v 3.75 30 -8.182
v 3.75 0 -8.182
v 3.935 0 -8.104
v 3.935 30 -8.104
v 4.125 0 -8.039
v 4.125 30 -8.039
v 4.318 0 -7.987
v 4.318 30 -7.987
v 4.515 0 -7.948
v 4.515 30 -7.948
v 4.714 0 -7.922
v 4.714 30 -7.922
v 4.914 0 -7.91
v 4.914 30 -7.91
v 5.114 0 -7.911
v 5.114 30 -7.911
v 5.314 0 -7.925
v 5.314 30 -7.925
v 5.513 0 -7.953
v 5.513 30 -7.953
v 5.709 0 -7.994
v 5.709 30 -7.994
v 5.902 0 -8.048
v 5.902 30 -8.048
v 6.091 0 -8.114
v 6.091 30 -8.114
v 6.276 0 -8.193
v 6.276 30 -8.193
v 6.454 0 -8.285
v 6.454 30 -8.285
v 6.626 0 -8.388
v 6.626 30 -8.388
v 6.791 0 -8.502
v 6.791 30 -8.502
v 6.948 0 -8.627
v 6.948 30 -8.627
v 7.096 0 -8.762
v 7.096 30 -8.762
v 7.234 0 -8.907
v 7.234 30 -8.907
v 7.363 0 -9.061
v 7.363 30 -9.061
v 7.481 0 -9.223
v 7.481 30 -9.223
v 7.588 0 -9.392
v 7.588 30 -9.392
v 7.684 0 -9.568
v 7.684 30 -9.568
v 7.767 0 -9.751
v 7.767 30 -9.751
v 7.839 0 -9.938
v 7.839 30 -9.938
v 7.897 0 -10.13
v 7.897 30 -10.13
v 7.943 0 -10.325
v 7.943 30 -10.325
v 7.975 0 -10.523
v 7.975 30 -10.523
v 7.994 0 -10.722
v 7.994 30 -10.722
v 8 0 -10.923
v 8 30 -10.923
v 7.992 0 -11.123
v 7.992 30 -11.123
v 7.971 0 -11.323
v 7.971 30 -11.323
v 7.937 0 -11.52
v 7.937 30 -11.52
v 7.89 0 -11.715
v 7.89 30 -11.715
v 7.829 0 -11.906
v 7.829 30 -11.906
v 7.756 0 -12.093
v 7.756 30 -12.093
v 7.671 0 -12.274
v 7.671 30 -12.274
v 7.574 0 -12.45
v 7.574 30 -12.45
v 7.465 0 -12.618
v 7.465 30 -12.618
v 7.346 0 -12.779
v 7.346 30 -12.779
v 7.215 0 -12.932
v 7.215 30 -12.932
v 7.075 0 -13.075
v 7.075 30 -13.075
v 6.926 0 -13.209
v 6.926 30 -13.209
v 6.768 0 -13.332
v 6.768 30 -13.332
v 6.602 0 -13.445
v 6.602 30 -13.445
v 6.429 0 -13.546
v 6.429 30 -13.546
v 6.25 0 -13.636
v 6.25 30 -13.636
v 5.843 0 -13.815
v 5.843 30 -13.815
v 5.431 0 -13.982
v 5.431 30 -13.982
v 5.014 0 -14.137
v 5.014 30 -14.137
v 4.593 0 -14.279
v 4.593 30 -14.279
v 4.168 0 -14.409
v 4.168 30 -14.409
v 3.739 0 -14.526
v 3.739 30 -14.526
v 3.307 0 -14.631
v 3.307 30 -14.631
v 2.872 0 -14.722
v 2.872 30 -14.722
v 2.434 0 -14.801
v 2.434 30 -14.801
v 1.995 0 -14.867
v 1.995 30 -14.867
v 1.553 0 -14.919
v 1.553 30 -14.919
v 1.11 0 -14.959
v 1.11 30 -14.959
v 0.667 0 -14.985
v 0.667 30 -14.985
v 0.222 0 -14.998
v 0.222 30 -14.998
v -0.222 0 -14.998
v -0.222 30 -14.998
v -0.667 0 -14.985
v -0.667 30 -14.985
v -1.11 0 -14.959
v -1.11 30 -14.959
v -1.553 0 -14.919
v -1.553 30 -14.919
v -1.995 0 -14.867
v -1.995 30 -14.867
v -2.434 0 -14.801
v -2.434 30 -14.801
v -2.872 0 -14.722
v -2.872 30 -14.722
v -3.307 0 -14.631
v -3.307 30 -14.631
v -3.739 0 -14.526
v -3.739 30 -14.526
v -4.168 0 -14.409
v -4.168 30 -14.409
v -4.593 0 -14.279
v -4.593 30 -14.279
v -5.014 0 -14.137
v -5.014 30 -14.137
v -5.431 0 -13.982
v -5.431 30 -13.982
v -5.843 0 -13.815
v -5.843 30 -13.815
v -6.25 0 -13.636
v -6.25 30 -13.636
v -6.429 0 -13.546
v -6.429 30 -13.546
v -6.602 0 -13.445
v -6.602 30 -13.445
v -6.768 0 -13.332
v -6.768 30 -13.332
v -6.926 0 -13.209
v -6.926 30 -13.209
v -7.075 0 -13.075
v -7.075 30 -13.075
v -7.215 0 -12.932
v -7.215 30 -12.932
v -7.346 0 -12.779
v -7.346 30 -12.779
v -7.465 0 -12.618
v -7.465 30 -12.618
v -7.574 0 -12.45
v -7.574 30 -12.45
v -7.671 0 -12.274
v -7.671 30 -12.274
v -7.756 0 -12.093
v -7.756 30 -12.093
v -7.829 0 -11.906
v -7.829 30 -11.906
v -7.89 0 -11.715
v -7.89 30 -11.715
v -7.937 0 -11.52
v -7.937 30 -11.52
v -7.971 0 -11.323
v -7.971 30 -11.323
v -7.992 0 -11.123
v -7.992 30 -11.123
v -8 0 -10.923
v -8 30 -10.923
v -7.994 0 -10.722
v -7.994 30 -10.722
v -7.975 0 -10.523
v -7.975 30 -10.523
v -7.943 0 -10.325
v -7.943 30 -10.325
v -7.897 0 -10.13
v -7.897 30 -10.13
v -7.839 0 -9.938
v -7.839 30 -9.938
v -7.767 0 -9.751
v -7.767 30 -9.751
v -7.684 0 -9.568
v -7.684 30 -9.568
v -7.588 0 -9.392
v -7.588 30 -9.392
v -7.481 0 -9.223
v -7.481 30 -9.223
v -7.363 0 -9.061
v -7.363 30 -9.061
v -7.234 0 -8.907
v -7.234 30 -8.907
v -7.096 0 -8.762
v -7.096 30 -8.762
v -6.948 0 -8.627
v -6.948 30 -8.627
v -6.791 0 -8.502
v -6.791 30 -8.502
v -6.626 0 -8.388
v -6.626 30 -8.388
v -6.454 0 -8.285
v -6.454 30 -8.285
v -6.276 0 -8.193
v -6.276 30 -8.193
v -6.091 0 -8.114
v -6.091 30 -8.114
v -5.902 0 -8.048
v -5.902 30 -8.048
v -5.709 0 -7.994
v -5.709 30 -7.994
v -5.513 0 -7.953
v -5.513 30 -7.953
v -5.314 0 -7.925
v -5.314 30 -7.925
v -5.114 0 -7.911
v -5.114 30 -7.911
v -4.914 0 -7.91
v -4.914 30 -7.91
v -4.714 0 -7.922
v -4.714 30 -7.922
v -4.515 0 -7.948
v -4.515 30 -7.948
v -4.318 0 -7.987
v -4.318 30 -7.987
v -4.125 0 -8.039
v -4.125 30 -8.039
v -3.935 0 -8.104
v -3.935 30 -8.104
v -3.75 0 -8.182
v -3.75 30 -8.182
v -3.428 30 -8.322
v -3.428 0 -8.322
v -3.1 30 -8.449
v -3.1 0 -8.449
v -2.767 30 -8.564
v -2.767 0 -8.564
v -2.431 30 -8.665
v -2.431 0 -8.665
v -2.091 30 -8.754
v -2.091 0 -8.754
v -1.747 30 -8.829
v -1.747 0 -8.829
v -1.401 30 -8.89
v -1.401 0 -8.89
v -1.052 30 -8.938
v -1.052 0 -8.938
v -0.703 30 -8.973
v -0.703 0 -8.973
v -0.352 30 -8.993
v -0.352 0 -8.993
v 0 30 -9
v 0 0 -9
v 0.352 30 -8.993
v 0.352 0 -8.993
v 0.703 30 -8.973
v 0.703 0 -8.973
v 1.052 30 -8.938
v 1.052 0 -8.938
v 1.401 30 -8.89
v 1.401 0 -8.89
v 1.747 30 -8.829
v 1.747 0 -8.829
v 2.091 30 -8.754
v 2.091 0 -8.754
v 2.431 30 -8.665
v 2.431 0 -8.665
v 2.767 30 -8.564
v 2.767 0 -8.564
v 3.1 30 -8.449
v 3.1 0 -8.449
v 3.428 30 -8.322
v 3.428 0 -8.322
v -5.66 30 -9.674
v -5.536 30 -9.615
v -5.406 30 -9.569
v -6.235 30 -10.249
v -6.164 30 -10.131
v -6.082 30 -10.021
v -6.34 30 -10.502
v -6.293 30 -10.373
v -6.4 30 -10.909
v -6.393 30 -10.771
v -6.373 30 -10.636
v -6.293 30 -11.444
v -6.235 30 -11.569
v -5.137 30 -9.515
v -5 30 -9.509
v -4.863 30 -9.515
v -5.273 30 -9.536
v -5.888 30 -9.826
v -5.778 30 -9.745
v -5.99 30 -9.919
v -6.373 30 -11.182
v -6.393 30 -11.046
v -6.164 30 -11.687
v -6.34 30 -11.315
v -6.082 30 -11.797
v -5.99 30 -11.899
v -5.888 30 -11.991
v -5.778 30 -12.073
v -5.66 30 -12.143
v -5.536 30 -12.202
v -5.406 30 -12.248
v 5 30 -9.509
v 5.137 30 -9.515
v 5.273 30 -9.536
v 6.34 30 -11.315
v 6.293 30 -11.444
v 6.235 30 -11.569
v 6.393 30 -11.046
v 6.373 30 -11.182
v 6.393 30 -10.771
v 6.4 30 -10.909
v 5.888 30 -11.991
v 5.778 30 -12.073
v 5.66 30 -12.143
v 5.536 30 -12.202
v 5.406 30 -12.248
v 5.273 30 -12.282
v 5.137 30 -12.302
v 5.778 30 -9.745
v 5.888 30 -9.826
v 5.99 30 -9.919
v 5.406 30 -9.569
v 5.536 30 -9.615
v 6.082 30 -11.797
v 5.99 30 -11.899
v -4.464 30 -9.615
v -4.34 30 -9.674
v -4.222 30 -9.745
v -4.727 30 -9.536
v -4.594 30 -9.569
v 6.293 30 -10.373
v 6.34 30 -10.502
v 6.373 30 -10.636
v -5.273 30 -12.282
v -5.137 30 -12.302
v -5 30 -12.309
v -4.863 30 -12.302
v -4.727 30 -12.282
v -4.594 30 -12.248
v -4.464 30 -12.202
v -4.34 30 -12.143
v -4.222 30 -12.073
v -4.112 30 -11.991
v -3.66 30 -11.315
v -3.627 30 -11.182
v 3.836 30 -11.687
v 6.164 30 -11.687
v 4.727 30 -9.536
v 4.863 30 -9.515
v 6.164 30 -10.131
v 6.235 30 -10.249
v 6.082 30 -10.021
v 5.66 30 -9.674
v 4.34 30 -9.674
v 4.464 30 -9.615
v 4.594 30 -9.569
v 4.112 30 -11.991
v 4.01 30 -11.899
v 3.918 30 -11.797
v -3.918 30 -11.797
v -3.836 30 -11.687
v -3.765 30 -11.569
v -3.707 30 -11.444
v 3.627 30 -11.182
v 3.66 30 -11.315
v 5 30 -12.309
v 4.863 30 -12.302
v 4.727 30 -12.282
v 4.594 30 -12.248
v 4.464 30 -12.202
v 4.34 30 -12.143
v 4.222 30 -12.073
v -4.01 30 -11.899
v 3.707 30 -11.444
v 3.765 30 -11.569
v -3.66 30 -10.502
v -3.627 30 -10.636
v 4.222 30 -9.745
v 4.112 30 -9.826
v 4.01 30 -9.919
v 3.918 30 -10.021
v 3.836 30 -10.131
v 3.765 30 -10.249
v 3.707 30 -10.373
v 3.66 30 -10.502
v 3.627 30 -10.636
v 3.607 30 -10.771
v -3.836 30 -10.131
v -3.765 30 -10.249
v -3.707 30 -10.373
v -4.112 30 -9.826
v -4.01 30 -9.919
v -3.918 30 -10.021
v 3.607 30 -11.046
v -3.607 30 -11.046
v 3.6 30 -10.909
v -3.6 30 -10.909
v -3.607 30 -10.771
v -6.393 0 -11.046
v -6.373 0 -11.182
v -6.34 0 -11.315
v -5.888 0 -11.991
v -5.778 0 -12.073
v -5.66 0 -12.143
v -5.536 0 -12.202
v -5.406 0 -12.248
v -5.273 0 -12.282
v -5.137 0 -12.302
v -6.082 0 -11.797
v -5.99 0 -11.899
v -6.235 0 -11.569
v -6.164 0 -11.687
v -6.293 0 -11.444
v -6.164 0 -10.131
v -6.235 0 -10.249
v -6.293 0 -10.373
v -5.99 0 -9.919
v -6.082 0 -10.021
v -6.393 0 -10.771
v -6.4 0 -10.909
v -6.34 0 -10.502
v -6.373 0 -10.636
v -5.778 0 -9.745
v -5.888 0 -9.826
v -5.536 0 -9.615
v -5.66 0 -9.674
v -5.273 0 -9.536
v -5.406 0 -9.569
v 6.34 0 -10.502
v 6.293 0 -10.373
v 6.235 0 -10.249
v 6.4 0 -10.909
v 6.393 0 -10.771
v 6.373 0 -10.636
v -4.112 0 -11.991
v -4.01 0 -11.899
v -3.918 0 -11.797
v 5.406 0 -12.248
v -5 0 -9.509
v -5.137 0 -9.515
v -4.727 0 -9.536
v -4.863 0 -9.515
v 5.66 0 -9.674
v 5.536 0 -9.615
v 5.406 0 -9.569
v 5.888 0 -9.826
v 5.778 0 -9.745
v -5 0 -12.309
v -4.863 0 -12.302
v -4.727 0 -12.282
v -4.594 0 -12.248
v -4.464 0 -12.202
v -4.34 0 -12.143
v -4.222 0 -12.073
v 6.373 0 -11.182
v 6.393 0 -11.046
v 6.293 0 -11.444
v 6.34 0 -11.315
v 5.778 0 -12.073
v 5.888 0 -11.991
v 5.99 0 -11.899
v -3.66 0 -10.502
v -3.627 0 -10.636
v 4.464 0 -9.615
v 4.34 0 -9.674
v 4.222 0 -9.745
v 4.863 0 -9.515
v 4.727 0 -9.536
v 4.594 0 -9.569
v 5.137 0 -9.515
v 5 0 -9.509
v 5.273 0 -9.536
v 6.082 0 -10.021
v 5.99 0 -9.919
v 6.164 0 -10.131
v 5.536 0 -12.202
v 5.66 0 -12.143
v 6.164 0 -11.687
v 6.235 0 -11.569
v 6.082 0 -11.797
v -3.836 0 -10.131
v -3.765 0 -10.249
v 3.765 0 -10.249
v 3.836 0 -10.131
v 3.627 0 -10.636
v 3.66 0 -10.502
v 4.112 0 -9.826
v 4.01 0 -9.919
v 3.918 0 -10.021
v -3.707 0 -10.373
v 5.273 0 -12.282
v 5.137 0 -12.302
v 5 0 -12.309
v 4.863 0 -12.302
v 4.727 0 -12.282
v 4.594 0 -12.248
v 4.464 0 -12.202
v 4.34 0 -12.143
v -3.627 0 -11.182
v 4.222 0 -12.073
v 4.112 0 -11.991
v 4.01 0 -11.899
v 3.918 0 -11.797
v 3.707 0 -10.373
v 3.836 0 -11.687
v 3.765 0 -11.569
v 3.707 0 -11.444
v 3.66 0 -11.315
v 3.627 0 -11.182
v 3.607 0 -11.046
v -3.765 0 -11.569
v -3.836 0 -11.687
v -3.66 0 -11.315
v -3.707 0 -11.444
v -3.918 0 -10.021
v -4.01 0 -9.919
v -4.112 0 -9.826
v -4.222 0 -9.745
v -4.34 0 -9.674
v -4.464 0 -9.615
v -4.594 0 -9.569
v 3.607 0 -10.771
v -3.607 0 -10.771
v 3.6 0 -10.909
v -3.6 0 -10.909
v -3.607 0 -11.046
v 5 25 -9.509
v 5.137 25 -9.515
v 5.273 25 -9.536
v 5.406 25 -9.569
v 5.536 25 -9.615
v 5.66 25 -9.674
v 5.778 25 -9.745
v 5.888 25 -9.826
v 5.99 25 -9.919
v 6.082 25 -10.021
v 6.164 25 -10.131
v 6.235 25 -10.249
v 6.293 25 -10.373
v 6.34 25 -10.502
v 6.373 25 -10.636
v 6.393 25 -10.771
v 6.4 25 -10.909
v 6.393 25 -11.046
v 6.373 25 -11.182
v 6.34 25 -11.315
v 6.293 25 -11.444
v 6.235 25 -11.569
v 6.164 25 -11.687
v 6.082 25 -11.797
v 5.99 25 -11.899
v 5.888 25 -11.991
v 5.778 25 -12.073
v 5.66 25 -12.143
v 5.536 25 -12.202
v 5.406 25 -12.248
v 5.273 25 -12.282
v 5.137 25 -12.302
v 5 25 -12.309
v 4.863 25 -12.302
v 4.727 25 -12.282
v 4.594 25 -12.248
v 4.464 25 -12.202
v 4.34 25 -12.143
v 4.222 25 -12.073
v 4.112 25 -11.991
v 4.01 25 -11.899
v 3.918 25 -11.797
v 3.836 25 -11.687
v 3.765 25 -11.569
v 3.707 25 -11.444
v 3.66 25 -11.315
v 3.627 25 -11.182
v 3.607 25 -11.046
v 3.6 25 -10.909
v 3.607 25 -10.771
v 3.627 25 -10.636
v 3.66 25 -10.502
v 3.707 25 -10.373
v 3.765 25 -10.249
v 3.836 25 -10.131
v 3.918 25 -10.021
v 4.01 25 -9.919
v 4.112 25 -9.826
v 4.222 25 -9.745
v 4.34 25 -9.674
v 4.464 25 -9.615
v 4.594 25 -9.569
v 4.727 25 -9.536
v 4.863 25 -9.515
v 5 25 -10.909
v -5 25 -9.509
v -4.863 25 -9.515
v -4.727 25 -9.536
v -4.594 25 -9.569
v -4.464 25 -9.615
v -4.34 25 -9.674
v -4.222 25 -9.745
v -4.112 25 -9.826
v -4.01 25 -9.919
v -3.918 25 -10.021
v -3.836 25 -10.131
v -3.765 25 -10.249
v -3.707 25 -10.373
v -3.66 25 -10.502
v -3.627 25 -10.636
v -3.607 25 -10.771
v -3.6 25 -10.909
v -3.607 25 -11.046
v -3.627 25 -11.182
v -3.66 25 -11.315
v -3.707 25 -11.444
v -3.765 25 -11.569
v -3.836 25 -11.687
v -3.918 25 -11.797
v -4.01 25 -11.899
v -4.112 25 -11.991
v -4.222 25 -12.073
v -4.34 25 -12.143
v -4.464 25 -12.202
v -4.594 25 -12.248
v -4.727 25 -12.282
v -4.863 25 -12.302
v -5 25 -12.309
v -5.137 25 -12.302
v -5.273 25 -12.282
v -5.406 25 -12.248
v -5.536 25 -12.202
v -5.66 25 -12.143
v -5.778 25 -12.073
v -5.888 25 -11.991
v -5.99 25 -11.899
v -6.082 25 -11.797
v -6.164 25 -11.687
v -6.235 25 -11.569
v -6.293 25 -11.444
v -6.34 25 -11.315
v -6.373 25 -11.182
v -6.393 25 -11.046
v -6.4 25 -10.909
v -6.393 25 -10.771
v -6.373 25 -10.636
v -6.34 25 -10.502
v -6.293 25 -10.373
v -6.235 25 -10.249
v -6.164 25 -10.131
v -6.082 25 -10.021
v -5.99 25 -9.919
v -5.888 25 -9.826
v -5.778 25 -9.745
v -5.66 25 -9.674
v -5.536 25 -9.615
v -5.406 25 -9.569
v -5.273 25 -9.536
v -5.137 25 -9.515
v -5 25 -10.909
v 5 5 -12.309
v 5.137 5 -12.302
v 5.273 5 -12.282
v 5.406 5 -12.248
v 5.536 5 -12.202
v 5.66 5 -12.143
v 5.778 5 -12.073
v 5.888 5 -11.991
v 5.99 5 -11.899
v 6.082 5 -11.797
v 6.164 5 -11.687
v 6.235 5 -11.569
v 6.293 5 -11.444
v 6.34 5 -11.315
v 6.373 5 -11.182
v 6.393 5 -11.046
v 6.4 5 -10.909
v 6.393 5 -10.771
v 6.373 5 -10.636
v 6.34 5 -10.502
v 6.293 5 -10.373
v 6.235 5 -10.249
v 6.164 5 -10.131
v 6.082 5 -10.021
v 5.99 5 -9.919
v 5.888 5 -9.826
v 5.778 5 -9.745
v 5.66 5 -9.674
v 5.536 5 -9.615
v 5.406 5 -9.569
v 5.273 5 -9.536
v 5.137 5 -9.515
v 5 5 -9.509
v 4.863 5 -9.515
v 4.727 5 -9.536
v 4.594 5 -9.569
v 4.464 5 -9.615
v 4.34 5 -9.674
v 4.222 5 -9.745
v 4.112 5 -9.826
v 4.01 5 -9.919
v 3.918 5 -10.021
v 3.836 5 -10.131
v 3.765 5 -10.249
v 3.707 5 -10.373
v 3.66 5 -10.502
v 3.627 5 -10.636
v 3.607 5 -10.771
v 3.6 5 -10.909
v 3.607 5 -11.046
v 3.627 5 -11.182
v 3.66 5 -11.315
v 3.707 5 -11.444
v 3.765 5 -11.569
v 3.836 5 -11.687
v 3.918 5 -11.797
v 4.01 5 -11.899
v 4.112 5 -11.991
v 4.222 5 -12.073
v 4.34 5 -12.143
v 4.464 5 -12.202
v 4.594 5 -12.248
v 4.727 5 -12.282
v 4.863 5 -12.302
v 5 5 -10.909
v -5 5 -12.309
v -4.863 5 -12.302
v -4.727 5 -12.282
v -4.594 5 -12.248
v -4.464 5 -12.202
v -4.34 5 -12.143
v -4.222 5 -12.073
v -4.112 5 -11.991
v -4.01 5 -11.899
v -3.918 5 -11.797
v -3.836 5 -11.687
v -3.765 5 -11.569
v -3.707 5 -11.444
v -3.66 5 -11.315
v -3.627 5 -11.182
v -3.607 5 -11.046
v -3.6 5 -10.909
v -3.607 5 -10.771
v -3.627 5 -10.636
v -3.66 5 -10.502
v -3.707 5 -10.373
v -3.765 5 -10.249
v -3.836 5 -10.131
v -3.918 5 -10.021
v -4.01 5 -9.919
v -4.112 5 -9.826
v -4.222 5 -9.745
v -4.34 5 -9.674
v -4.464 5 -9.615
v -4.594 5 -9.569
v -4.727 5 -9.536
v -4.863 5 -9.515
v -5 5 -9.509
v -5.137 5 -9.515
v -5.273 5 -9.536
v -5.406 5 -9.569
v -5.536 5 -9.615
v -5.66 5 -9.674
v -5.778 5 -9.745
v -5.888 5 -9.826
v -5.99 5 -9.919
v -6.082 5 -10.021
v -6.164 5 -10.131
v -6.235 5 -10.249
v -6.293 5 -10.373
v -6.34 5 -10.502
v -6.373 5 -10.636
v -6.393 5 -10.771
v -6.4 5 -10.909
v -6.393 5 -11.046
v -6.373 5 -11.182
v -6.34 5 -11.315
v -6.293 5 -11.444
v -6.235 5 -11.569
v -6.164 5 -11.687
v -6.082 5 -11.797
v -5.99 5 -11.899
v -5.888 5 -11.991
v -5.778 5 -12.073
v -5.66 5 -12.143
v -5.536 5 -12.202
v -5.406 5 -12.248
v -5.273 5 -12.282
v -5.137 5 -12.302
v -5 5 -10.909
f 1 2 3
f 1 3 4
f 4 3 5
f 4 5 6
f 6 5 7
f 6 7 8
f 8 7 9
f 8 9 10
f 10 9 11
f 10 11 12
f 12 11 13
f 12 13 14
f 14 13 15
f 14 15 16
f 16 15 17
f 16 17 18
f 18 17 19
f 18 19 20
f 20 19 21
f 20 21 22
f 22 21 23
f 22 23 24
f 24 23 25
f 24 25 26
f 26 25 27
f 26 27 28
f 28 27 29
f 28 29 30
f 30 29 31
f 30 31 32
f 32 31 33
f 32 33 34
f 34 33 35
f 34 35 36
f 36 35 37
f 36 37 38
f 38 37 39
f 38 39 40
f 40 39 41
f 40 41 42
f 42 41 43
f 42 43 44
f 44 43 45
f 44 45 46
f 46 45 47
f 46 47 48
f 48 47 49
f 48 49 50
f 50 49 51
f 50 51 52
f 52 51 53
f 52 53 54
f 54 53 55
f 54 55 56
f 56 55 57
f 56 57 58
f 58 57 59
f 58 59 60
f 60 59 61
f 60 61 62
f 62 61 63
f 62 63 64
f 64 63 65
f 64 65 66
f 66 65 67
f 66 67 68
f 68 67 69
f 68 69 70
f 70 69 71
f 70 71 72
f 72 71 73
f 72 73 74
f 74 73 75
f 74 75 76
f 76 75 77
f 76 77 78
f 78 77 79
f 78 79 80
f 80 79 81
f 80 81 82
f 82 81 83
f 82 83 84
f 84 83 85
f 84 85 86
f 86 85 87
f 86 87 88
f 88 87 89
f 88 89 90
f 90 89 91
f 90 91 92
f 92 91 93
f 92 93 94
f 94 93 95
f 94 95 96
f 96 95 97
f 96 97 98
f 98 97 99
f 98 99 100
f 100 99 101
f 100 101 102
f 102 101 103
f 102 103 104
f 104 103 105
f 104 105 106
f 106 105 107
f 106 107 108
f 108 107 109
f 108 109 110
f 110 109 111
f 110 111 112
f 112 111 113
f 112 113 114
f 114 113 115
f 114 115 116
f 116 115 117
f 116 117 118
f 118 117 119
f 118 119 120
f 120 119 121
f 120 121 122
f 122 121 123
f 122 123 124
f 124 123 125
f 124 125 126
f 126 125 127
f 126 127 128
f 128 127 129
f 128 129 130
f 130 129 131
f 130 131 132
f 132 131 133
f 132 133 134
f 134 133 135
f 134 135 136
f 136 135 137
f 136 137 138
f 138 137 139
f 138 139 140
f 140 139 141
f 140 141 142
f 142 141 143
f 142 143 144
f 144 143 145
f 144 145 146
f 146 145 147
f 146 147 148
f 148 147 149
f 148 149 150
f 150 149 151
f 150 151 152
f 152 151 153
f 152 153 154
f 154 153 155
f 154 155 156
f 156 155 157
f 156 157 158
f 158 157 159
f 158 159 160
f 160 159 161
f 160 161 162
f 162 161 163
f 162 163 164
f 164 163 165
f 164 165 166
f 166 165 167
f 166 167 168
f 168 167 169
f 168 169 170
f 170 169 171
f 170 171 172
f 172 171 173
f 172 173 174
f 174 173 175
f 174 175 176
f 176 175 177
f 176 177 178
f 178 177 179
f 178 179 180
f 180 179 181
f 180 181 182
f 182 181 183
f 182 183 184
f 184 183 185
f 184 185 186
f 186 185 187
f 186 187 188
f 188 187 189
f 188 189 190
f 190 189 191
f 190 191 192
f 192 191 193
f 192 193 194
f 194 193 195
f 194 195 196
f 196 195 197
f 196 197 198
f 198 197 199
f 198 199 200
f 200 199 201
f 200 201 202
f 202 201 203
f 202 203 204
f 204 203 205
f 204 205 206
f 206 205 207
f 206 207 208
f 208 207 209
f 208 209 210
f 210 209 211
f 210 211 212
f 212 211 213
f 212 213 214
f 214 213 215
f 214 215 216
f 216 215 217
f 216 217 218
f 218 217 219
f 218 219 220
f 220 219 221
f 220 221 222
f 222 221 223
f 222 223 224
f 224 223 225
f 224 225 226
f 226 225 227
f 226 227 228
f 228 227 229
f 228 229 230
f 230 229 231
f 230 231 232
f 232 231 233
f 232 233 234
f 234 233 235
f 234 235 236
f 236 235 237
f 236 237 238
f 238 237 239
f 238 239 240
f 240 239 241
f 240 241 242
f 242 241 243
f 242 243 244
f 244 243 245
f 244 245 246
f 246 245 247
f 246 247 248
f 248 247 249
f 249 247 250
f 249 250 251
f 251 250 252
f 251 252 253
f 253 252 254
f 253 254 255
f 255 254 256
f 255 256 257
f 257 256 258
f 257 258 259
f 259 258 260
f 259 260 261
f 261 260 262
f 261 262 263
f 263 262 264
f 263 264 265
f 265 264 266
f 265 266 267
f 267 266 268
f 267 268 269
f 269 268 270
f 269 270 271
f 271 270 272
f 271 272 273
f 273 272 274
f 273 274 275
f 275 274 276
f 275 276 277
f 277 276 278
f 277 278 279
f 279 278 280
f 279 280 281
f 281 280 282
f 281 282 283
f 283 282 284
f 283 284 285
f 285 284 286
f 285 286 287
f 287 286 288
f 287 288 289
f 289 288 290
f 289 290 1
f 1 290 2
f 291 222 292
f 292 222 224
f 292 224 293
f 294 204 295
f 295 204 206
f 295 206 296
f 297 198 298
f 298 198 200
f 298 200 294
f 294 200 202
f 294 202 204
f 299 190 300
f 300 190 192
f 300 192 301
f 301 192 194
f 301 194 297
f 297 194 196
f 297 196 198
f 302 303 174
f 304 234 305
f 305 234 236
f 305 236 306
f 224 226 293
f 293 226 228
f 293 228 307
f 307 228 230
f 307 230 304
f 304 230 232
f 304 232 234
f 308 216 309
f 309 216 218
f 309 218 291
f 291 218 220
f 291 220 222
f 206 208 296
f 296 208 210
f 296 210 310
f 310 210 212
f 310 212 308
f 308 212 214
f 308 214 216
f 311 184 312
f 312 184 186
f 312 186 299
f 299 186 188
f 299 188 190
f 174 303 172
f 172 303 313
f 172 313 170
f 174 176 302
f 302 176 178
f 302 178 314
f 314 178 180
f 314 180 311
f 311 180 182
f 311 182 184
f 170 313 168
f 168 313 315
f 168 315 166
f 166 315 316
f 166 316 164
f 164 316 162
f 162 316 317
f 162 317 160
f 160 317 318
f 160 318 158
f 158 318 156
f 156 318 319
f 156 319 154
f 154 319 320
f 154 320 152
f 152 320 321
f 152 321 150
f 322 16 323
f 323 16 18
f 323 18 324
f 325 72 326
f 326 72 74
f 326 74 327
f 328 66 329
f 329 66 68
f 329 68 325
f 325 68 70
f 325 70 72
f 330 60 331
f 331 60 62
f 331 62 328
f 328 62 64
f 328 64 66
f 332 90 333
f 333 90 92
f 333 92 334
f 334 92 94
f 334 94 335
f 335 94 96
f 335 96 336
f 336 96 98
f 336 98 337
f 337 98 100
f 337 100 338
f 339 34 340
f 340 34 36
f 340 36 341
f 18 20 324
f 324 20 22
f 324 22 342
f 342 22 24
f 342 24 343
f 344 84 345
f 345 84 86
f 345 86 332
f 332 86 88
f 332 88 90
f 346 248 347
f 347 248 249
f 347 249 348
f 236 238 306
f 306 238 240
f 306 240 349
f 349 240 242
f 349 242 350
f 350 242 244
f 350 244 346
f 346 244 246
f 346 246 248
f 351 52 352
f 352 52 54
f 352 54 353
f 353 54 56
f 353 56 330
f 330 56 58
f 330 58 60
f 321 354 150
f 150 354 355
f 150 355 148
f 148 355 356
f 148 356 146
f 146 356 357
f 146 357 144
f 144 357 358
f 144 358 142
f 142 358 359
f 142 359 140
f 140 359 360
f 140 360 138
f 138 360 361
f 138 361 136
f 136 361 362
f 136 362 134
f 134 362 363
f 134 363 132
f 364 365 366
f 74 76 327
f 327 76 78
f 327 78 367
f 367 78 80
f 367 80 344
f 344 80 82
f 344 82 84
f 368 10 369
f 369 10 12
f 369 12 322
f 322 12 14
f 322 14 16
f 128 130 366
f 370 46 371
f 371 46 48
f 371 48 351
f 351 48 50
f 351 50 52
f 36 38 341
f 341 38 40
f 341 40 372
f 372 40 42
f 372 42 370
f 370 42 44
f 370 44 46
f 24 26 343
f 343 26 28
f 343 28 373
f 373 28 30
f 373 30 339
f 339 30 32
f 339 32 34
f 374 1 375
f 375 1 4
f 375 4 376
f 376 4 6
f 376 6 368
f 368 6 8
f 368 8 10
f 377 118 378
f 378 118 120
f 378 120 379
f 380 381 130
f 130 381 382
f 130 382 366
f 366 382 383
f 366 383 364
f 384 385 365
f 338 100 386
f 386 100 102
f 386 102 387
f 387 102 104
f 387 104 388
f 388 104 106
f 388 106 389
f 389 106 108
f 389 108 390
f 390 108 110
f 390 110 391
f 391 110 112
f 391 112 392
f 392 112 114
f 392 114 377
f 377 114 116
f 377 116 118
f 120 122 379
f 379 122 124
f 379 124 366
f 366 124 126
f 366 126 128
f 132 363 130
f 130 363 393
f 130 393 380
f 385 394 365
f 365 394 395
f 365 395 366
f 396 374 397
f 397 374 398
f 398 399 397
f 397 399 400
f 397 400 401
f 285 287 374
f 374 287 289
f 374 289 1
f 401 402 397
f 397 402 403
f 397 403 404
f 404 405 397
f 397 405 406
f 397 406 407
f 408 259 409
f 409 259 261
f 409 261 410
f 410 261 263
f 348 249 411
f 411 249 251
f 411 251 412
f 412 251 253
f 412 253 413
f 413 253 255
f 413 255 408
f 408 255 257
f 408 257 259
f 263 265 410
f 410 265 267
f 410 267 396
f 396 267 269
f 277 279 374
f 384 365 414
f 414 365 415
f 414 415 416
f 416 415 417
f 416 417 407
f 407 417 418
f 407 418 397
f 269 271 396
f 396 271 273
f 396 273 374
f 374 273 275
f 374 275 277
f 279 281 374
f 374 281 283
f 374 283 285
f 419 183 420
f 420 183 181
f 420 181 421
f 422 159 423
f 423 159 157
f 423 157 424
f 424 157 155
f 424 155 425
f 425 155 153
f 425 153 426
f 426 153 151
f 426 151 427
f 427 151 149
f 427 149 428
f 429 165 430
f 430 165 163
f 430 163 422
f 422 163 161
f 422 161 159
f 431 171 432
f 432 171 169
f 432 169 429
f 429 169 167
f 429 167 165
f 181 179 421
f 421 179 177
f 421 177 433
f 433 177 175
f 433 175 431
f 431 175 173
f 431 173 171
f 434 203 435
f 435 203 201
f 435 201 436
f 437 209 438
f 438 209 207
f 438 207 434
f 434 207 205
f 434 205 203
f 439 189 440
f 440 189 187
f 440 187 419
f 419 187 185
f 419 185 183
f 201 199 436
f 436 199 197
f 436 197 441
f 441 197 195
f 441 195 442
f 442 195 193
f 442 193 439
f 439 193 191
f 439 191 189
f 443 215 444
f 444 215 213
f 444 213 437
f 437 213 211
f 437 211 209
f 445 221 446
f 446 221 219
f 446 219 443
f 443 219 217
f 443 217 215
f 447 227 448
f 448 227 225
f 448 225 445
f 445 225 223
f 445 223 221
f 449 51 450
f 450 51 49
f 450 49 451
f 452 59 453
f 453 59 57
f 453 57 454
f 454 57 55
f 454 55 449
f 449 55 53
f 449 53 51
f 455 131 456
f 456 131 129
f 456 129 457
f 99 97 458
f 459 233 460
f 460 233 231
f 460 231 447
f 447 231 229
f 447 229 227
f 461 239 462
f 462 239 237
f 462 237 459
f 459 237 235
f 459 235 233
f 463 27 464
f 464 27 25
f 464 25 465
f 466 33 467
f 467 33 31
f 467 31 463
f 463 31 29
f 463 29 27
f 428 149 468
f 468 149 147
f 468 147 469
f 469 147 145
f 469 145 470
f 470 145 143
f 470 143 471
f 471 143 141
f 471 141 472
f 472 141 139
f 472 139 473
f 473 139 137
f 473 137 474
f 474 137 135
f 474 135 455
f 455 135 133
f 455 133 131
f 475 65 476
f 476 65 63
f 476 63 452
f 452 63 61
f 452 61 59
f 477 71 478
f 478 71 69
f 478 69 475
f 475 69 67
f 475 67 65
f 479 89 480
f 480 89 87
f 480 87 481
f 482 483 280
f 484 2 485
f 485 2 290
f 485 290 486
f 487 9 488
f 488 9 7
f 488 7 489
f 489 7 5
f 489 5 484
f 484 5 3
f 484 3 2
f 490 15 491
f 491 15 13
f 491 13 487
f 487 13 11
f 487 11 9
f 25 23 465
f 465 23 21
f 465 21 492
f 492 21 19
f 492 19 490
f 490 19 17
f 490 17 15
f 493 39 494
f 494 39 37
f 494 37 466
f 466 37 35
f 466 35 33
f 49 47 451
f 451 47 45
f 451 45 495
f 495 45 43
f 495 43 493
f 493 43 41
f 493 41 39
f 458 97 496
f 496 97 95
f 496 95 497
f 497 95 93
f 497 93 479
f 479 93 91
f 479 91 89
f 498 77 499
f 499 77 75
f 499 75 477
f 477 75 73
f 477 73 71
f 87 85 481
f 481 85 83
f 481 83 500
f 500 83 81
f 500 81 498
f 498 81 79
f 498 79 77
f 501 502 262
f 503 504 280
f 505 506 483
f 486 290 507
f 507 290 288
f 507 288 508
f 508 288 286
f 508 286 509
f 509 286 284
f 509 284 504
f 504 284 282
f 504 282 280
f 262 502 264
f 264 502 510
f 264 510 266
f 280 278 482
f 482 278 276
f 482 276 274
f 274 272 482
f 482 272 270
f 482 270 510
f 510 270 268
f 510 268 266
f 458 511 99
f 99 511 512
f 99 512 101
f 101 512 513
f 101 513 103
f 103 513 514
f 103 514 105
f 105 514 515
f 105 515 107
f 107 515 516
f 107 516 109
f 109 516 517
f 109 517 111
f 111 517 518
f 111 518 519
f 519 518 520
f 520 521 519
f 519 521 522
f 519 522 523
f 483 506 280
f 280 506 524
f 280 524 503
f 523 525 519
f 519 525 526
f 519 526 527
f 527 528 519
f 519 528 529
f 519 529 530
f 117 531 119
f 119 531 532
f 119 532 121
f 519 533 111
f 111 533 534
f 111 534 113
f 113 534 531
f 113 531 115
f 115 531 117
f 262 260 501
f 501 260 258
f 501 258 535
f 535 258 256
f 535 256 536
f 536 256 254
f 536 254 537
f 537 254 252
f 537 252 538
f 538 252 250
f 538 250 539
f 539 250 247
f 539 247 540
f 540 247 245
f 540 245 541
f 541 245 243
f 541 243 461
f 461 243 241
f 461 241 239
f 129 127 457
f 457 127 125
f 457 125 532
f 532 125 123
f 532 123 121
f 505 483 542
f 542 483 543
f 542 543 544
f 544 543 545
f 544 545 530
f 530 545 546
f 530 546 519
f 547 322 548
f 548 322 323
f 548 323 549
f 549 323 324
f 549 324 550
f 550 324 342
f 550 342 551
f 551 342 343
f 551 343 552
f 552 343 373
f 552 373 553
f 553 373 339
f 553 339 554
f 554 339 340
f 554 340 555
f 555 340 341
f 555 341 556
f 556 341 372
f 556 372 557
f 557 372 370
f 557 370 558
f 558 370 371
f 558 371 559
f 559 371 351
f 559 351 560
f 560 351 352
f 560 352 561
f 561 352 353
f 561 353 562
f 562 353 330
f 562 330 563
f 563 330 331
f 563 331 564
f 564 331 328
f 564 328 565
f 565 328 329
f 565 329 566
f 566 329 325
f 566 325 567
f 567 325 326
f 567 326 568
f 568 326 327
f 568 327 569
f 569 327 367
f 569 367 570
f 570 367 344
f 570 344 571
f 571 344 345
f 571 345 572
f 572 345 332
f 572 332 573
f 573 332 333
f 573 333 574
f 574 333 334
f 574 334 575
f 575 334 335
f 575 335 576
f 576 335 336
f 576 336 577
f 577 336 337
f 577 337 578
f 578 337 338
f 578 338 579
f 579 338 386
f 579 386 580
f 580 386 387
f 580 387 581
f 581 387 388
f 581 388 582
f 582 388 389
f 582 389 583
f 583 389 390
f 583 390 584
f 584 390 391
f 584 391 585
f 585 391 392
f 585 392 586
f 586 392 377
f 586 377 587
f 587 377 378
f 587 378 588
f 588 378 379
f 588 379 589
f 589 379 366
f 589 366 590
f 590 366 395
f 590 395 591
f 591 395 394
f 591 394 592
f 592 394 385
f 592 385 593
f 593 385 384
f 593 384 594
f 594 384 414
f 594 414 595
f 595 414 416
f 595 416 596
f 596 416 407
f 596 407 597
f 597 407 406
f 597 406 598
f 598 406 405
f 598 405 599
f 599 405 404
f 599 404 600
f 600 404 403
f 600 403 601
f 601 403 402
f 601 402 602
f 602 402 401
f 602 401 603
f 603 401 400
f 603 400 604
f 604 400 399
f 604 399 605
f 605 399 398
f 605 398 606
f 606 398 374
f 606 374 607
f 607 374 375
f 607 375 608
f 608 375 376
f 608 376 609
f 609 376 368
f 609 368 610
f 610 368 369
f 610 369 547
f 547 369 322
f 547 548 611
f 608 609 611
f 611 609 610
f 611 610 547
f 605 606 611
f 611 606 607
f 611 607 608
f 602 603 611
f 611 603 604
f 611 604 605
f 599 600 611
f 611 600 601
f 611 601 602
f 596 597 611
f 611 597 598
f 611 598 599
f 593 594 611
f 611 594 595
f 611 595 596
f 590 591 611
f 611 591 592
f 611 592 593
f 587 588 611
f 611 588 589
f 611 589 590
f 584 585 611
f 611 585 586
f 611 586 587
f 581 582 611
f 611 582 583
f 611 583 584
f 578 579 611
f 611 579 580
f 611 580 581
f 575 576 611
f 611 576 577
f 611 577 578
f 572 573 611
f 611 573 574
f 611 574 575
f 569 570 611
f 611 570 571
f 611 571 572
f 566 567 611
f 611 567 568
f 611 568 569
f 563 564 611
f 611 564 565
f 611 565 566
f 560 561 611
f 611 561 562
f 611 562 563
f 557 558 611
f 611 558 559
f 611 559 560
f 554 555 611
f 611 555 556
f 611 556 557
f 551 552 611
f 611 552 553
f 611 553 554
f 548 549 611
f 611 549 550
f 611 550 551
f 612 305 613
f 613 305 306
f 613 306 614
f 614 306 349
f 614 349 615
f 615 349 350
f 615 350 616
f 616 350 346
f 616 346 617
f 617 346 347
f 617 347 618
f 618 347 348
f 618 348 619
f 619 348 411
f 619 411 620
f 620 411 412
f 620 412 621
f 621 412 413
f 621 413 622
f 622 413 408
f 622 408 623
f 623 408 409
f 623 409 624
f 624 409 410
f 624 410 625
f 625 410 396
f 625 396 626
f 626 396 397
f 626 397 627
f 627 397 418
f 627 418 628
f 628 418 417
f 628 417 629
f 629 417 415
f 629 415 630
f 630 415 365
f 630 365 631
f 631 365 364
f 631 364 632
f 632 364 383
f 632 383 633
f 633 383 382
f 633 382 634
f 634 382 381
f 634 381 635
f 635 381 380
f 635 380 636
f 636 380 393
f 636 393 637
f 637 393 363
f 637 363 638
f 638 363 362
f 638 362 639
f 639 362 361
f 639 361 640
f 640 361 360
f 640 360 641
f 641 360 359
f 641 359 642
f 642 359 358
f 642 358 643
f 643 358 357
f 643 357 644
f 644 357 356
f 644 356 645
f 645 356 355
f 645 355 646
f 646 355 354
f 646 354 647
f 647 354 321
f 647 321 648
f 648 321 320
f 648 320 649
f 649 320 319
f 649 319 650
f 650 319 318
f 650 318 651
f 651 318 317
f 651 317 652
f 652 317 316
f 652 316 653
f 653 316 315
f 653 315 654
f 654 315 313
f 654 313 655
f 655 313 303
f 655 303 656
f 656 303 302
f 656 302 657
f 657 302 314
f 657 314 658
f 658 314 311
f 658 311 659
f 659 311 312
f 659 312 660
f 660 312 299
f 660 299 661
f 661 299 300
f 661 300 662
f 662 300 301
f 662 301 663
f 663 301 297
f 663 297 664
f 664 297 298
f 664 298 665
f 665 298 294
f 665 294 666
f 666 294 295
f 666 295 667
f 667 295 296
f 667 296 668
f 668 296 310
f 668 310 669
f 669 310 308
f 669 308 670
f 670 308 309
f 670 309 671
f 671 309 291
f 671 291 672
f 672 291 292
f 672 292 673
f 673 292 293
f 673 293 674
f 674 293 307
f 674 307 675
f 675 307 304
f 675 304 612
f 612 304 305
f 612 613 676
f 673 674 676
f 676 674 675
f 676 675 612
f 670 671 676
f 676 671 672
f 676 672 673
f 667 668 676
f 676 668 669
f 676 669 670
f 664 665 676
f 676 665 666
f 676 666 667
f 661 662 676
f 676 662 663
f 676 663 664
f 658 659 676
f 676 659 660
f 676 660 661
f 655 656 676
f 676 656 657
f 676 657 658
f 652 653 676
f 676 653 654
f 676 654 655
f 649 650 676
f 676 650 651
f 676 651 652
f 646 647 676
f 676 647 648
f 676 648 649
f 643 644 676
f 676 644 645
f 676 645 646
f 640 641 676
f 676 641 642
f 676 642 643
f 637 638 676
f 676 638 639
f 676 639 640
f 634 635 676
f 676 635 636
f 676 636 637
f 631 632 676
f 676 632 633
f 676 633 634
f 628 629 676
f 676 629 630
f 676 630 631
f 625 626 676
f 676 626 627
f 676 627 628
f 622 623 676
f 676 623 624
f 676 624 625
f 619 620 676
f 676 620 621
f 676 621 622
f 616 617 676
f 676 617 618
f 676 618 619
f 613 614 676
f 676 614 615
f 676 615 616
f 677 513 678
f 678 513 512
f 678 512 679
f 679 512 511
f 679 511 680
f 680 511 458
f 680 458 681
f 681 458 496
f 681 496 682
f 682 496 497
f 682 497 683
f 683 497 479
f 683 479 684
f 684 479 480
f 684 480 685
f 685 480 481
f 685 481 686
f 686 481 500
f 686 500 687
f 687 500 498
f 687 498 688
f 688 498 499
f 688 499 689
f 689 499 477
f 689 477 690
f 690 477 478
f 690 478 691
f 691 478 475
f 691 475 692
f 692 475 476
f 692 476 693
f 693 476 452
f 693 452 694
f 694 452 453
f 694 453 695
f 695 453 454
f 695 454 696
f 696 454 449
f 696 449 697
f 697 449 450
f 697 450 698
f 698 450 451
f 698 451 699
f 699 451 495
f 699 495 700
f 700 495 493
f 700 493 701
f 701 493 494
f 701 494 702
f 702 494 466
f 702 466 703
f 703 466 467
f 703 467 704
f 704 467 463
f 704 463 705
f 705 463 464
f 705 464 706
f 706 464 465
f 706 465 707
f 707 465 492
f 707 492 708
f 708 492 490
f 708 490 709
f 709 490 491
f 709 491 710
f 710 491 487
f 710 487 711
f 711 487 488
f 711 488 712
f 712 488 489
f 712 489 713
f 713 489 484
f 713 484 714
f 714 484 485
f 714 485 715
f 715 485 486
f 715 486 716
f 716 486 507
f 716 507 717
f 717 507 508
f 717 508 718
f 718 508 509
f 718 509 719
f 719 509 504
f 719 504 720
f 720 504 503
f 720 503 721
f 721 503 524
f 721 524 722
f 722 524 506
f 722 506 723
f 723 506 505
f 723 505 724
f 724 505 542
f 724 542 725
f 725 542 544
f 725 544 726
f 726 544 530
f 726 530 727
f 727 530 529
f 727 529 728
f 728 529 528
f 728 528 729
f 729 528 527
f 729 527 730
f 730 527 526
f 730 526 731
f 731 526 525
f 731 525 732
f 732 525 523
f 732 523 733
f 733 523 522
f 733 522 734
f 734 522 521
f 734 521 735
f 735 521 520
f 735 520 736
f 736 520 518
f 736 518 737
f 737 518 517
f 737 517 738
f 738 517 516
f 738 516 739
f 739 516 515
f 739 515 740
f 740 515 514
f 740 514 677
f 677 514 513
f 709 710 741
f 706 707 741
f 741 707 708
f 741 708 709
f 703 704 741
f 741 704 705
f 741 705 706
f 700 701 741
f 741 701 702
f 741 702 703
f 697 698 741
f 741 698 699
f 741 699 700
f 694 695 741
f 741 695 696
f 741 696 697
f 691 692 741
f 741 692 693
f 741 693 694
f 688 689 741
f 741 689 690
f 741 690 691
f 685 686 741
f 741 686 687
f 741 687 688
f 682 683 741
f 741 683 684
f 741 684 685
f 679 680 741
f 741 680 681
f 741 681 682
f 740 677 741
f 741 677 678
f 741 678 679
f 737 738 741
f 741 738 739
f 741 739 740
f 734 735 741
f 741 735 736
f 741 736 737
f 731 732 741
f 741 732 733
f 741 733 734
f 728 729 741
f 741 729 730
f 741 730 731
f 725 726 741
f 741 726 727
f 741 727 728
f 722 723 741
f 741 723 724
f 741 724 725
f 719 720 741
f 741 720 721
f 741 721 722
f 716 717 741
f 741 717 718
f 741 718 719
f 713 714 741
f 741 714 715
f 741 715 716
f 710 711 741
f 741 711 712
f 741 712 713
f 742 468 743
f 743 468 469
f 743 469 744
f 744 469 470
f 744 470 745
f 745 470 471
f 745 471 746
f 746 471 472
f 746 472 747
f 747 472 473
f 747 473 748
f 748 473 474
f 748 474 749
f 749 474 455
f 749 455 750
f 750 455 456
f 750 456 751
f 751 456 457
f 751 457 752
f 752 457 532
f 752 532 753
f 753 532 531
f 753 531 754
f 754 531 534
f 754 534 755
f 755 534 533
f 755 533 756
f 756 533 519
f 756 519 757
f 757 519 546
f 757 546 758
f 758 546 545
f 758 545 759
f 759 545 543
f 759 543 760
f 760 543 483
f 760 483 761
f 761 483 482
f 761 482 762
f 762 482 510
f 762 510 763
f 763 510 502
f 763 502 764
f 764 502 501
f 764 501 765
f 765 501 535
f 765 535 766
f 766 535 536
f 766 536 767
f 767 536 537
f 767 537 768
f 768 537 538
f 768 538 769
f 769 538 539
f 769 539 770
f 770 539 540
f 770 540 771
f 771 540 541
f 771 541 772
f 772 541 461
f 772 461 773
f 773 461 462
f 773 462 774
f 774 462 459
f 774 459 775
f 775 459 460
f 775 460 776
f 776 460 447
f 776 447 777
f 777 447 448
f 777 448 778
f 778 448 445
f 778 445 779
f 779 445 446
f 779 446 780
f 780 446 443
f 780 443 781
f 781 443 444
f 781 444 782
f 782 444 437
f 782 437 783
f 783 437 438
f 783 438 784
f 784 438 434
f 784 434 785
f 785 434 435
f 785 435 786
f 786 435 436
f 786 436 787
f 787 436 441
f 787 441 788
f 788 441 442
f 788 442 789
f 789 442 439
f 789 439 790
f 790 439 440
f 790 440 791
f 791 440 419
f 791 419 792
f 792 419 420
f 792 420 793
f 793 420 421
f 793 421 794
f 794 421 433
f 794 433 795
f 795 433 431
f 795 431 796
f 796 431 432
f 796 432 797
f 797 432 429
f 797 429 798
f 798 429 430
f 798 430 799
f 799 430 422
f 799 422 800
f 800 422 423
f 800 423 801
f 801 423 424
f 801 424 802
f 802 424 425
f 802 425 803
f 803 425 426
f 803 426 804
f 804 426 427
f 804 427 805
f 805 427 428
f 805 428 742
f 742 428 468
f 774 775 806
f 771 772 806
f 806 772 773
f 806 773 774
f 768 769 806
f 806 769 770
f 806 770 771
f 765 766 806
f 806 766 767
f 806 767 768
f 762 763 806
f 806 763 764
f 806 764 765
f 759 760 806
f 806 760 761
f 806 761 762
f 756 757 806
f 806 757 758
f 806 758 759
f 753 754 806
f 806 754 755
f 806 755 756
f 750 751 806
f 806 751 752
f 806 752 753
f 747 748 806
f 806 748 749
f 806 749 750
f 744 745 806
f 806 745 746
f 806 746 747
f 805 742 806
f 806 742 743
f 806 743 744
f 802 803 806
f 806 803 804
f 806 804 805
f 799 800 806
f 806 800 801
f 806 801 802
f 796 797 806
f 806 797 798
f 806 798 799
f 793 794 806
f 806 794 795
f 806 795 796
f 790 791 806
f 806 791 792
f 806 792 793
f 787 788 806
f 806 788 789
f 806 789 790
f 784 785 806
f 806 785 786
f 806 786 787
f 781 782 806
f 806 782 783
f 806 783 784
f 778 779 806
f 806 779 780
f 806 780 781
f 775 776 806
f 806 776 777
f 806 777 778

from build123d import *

# Parameters (mm, degrees)
BOSS_EXTRUDE1_DEPTH     = 30
SKETCH3_R               = 1.4
CUT_EXTRUDE1_DEPTH      = 5
MIRROR2_COPY_1_SKETCH_R = 1.4
MIRROR2_COPY_1_DEPTH    = 5


with BuildPart() as part:
    # Sketch2 → Boss-Extrude1 (new body)
    with BuildSketch(Plane(origin=(0, 0, 0), x_dir=(1, 0, 0), z_dir=(0, 1, 0))):
        with BuildLine():
            ThreePointArc((6.25, 13.635890143), (0, 15), (-6.25, 13.635890143))
            ThreePointArc((-6.25, 13.635890143), (-7.727178029, 9.658712115), (-3.75, 8.181534086))
            ThreePointArc((-3.75, 8.181534086), (0, 9), (3.75, 8.181534086))
            ThreePointArc((3.75, 8.181534086), (7.727178029, 9.658712115), (6.25, 13.635890143))
        make_face()
    extrude(amount=BOSS_EXTRUDE1_DEPTH)

    # Sketch3 → Cut-Extrude1 (cut)
    with BuildSketch(Plane(origin=(0, 30, 0), x_dir=(1, 0, 0), z_dir=(0, 1, 0))):
        with Locations((5, 10.908712115)):
            Circle(SKETCH3_R)
    cut_extrude1 = extrude(amount=-CUT_EXTRUDE1_DEPTH, mode=Mode.SUBTRACT)

    # Mirror1: Cut-Extrude1 across plane
    add(cut_extrude1.mirror(Plane(origin=(0, 0, 0), x_dir=(0, 0, 1), z_dir=(1, 0, 0))), mode=Mode.SUBTRACT)

    # Mirror2: Cut-Extrude1 across plane
    add(cut_extrude1.mirror(Plane.ZX.offset(15)), mode=Mode.SUBTRACT)

    # Mirror2 copy 1 sketch → Mirror2 copy 1 (cut)
    with BuildSketch(Plane(origin=(0, 0, 0), x_dir=(-1, 0, 0), z_dir=(0, -1, 0))):
        with Locations((5, 10.908712115)):
            Circle(MIRROR2_COPY_1_SKETCH_R)
    extrude(amount=-MIRROR2_COPY_1_DEPTH, mode=Mode.SUBTRACT)


solid = part.part
